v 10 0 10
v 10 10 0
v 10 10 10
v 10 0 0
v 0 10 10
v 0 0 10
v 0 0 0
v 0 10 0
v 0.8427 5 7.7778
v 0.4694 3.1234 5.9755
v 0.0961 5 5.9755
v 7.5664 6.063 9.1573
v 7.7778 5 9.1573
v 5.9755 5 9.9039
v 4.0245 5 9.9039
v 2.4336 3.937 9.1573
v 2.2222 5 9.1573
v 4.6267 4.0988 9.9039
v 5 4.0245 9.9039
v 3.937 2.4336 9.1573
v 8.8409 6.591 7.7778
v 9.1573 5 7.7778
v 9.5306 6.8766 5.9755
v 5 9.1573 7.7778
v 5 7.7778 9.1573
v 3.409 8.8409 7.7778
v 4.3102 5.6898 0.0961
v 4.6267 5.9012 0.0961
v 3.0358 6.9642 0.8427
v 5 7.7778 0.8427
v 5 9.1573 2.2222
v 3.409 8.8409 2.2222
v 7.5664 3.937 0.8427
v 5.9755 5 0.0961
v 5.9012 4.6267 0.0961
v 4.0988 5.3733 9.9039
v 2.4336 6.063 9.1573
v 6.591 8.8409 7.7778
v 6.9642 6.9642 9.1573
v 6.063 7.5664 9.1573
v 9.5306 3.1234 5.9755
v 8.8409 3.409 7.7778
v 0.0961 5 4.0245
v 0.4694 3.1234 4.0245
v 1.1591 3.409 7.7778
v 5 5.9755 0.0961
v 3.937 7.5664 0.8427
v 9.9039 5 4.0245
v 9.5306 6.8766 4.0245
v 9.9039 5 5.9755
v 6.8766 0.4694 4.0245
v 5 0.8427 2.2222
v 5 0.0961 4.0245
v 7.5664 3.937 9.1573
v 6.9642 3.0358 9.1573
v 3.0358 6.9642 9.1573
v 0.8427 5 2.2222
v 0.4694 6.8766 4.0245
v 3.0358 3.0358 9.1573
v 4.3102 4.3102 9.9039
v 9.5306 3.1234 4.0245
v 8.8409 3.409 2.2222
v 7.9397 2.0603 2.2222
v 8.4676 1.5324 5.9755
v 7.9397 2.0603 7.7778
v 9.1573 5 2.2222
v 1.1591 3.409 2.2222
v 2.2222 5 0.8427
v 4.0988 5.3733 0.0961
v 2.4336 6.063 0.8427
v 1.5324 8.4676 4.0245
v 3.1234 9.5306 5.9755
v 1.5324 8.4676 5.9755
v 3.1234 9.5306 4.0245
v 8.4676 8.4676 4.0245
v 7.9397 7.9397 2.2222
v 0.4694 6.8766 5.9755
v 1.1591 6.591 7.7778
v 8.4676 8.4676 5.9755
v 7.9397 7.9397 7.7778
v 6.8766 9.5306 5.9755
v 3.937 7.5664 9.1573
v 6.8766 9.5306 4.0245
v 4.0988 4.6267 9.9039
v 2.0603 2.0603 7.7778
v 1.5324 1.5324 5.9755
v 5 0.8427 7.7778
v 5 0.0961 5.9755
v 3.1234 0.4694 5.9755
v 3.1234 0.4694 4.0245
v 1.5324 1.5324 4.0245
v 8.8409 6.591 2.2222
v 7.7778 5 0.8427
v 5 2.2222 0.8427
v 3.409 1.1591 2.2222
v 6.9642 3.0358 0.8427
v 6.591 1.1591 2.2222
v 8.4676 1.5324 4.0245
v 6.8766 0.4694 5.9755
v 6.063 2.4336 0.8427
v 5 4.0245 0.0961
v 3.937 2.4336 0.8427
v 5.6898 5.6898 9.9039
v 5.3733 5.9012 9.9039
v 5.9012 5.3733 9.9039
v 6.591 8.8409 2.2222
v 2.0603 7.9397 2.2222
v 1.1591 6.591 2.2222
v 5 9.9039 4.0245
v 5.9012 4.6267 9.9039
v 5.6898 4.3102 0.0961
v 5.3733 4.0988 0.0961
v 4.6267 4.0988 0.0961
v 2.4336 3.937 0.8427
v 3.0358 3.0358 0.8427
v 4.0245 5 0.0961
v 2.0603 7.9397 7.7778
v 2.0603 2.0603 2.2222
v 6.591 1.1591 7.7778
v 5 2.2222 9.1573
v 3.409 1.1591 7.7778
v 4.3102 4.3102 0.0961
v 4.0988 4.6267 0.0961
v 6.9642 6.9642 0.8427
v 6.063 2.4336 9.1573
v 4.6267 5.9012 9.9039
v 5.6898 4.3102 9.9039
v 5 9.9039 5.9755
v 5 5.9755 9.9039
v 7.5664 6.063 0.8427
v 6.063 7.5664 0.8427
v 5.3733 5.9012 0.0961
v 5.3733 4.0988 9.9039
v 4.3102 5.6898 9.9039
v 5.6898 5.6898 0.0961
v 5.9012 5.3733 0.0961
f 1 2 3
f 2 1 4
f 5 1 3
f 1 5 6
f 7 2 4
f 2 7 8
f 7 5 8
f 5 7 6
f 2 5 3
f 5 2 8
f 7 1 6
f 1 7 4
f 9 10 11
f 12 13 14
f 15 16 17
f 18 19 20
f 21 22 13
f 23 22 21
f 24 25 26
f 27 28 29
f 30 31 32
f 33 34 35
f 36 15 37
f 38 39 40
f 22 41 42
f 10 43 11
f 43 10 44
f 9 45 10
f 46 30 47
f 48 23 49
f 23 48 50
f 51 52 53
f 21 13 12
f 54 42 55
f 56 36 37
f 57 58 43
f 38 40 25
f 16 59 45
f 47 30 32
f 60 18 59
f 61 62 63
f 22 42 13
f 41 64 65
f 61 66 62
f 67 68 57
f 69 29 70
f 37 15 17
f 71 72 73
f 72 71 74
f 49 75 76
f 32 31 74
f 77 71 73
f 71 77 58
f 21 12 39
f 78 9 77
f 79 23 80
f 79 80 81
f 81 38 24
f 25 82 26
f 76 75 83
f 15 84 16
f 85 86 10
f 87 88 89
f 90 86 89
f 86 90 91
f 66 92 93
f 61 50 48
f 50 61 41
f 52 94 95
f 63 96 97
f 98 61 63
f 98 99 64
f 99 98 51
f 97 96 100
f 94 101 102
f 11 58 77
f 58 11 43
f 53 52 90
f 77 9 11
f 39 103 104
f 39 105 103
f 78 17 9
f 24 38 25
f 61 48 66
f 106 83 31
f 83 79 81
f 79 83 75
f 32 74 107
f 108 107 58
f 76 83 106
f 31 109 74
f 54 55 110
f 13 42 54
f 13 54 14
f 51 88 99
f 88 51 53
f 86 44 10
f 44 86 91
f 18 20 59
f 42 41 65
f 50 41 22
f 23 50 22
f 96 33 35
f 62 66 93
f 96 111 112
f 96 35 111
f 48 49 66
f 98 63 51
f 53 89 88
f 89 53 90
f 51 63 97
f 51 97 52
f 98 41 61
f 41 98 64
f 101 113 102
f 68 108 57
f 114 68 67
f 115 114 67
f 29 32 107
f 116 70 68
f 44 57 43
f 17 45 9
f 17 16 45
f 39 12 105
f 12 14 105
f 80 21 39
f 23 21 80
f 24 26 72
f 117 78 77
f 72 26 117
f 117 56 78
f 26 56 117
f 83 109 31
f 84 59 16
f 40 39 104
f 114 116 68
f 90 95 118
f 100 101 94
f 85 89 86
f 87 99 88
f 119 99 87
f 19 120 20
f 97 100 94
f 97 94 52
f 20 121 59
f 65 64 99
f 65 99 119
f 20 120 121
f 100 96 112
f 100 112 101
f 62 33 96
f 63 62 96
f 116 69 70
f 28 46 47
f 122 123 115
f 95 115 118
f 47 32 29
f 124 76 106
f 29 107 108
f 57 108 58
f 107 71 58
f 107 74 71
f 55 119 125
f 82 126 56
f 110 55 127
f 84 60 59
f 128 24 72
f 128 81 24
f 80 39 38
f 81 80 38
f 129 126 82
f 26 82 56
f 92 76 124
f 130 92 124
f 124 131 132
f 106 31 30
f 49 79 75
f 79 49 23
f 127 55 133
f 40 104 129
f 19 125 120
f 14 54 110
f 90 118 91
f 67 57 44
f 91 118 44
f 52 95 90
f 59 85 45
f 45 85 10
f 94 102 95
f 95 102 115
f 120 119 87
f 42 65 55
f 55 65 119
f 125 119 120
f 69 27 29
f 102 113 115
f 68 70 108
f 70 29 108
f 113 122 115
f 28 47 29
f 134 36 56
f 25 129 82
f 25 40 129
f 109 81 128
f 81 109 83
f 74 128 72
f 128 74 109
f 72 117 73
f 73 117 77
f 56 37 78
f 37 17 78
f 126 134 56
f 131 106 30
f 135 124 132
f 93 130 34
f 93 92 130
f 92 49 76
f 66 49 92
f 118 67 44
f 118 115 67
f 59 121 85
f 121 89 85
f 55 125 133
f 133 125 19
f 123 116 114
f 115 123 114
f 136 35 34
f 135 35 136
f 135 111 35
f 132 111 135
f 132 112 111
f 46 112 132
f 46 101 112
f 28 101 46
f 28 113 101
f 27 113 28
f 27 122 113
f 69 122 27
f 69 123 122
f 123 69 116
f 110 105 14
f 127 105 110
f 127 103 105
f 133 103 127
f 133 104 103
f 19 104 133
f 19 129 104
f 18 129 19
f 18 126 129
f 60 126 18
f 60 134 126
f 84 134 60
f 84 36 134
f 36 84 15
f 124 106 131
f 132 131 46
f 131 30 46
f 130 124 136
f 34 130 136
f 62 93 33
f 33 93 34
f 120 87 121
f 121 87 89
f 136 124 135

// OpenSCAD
module octahedron(a, b) {
  difference() {
    cube([a, a, b]);
    translate([a/2, a/2, b/2])
    sphere(a/2);
    translate([-a/2, -a/2, b/2])
    sphere(a/2);
  }
}

octahedron(10, 10);
